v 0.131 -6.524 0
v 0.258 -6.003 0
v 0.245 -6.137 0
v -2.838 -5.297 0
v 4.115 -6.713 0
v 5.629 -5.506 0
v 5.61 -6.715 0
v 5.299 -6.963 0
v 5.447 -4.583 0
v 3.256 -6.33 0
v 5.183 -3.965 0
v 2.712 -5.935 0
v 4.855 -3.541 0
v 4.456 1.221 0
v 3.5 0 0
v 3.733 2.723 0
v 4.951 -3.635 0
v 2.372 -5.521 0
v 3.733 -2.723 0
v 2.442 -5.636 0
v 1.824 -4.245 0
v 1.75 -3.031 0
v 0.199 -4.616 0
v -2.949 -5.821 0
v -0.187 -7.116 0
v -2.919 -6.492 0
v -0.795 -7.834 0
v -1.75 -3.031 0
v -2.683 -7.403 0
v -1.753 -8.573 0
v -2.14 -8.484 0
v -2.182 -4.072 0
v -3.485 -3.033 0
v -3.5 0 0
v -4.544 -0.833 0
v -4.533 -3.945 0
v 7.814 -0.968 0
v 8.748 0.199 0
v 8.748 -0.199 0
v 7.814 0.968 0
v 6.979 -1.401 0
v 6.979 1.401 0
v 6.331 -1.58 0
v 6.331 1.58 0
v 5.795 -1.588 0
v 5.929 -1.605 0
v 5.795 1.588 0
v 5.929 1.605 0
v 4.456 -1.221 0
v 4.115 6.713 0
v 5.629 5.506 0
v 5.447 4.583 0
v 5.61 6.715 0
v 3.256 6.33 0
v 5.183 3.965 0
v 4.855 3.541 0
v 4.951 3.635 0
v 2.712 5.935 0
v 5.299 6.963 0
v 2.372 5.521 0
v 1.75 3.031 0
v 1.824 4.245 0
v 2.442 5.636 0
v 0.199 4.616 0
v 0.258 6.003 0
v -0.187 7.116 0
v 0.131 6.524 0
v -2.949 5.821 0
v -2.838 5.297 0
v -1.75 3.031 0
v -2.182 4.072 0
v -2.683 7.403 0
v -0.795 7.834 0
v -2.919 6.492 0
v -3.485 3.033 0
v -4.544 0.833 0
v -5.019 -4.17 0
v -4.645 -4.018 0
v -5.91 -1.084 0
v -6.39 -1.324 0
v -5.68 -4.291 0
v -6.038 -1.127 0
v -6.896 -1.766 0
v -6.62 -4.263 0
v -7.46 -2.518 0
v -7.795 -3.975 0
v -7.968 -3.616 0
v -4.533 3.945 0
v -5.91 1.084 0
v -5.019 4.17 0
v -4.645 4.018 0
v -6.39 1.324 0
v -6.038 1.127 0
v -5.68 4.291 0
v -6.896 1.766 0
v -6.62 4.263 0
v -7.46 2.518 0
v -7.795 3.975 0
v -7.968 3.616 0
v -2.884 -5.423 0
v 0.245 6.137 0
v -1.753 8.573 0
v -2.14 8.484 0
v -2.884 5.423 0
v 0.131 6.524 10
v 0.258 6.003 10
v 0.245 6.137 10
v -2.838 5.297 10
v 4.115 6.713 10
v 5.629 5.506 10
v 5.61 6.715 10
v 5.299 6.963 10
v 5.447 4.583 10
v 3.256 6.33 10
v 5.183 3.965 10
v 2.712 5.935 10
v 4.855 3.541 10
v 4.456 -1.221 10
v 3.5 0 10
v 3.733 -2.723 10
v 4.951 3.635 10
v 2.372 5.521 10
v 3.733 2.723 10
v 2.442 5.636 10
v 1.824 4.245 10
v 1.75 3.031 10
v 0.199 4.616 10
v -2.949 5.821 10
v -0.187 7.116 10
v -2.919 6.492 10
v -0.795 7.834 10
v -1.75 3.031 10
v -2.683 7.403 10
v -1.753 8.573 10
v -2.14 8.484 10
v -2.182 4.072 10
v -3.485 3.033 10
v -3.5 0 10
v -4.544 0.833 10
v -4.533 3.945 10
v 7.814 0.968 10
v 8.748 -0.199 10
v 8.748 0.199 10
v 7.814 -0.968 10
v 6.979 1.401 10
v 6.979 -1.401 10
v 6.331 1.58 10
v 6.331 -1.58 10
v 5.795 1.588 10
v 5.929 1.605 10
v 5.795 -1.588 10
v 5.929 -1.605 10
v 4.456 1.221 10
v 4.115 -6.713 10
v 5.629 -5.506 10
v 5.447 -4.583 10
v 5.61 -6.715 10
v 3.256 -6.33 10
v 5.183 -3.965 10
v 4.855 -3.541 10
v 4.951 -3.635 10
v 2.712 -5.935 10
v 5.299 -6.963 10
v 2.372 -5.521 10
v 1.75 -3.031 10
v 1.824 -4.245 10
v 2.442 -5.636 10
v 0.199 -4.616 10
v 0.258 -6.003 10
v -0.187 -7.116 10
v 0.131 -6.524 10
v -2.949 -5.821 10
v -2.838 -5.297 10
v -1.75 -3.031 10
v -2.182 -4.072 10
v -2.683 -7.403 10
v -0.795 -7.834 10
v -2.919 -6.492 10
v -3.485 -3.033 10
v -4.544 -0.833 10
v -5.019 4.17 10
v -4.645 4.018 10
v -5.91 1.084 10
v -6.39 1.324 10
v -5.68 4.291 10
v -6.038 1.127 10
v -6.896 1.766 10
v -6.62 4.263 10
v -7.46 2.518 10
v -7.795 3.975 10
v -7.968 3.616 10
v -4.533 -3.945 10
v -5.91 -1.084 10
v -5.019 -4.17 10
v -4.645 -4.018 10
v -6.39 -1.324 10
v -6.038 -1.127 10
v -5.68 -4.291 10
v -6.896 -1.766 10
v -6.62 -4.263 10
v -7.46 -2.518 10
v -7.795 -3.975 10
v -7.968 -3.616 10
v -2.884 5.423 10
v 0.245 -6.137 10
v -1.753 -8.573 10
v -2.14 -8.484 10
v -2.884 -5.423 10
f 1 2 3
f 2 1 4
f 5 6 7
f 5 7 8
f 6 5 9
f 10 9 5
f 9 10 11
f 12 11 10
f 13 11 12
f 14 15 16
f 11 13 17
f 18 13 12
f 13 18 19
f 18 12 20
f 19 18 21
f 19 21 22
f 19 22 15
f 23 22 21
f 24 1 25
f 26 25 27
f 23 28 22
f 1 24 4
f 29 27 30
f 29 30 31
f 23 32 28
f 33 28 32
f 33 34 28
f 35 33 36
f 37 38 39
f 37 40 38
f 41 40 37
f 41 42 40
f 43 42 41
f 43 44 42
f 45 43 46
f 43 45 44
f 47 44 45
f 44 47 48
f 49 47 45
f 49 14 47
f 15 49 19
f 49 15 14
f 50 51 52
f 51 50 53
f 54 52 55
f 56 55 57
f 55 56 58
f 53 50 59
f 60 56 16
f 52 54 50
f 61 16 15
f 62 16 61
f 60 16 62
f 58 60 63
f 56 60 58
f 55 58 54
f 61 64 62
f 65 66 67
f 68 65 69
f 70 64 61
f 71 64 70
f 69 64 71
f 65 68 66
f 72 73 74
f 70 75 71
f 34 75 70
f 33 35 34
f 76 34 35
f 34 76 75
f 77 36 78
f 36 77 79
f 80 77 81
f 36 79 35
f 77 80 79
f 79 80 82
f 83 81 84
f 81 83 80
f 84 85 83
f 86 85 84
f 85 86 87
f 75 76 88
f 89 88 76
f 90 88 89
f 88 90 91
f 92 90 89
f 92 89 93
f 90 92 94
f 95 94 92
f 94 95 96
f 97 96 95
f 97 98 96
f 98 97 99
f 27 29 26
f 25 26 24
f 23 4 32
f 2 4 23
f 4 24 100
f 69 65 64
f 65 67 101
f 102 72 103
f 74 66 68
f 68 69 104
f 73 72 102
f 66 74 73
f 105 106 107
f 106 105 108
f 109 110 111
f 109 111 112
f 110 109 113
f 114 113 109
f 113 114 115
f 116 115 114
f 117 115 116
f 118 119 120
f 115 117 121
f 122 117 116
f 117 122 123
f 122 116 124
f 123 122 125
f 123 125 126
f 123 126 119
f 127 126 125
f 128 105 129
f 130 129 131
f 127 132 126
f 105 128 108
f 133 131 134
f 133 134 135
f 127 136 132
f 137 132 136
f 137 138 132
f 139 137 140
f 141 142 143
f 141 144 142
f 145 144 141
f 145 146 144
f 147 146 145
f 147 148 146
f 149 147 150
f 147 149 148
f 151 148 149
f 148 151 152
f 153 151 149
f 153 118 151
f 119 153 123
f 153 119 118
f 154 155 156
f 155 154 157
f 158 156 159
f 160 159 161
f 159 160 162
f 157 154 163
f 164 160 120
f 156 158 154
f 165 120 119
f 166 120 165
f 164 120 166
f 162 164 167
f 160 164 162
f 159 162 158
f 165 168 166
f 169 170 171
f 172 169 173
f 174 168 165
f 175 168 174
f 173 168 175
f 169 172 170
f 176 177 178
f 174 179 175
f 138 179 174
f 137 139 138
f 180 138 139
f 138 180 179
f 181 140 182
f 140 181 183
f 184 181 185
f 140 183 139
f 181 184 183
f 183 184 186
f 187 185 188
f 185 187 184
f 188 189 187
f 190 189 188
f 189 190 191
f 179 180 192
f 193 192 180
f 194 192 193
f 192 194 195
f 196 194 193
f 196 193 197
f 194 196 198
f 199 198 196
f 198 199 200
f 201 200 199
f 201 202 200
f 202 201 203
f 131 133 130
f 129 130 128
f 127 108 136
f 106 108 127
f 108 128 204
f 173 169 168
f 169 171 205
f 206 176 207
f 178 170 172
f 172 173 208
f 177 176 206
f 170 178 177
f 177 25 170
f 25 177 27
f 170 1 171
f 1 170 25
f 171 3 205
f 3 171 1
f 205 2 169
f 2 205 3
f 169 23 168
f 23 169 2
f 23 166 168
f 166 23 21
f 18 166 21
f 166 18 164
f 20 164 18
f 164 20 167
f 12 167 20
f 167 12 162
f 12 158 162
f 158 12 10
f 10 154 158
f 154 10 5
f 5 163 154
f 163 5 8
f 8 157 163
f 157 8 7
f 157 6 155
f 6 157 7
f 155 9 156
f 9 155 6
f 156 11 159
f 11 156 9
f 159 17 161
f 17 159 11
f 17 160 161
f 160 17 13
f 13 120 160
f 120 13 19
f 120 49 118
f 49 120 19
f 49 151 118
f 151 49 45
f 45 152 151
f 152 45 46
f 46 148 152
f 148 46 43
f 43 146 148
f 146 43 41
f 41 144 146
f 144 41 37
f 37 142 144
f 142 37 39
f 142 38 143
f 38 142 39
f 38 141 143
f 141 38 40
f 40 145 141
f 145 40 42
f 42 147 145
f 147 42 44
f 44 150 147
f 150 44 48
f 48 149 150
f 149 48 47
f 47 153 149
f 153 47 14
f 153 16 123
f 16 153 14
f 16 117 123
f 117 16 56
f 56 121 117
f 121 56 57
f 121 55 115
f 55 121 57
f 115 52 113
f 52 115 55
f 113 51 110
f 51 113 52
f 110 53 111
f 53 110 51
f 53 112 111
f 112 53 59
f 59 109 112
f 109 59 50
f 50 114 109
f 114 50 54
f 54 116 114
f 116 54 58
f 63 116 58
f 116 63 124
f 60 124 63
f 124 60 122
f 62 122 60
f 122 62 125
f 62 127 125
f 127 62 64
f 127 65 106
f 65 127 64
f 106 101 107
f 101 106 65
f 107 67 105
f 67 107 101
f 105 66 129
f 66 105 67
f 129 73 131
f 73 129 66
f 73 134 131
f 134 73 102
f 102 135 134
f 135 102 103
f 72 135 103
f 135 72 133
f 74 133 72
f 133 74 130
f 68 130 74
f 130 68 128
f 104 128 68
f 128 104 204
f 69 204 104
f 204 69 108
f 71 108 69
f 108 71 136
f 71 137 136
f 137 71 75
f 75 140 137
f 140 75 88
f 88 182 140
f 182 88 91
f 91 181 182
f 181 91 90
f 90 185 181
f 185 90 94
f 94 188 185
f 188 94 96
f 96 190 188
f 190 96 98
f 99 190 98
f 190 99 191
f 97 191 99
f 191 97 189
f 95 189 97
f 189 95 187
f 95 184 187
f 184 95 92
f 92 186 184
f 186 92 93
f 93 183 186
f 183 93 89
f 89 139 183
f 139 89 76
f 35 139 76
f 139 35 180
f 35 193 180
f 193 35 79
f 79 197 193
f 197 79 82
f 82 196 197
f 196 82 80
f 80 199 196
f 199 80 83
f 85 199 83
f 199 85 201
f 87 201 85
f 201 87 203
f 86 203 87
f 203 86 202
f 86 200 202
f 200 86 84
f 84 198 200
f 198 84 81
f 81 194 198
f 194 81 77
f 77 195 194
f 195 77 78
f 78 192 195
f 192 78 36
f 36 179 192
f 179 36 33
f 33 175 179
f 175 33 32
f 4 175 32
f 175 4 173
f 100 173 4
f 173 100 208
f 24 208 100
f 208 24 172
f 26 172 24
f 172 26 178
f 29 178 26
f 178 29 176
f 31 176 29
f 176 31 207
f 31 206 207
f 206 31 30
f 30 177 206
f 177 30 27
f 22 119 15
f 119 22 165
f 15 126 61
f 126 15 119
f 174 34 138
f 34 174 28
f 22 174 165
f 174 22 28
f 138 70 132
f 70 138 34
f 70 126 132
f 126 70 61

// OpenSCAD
use <MCAD/involute_gears.scad>
module small_gear(){
    difference(){
        linear_extrude(height = 10) gear(  number_of_teeth=7, circular_pitch=350, flat=true);
        linear_extrude(height=11) circle($fn=6, d=7);
}
}

small_gear();
